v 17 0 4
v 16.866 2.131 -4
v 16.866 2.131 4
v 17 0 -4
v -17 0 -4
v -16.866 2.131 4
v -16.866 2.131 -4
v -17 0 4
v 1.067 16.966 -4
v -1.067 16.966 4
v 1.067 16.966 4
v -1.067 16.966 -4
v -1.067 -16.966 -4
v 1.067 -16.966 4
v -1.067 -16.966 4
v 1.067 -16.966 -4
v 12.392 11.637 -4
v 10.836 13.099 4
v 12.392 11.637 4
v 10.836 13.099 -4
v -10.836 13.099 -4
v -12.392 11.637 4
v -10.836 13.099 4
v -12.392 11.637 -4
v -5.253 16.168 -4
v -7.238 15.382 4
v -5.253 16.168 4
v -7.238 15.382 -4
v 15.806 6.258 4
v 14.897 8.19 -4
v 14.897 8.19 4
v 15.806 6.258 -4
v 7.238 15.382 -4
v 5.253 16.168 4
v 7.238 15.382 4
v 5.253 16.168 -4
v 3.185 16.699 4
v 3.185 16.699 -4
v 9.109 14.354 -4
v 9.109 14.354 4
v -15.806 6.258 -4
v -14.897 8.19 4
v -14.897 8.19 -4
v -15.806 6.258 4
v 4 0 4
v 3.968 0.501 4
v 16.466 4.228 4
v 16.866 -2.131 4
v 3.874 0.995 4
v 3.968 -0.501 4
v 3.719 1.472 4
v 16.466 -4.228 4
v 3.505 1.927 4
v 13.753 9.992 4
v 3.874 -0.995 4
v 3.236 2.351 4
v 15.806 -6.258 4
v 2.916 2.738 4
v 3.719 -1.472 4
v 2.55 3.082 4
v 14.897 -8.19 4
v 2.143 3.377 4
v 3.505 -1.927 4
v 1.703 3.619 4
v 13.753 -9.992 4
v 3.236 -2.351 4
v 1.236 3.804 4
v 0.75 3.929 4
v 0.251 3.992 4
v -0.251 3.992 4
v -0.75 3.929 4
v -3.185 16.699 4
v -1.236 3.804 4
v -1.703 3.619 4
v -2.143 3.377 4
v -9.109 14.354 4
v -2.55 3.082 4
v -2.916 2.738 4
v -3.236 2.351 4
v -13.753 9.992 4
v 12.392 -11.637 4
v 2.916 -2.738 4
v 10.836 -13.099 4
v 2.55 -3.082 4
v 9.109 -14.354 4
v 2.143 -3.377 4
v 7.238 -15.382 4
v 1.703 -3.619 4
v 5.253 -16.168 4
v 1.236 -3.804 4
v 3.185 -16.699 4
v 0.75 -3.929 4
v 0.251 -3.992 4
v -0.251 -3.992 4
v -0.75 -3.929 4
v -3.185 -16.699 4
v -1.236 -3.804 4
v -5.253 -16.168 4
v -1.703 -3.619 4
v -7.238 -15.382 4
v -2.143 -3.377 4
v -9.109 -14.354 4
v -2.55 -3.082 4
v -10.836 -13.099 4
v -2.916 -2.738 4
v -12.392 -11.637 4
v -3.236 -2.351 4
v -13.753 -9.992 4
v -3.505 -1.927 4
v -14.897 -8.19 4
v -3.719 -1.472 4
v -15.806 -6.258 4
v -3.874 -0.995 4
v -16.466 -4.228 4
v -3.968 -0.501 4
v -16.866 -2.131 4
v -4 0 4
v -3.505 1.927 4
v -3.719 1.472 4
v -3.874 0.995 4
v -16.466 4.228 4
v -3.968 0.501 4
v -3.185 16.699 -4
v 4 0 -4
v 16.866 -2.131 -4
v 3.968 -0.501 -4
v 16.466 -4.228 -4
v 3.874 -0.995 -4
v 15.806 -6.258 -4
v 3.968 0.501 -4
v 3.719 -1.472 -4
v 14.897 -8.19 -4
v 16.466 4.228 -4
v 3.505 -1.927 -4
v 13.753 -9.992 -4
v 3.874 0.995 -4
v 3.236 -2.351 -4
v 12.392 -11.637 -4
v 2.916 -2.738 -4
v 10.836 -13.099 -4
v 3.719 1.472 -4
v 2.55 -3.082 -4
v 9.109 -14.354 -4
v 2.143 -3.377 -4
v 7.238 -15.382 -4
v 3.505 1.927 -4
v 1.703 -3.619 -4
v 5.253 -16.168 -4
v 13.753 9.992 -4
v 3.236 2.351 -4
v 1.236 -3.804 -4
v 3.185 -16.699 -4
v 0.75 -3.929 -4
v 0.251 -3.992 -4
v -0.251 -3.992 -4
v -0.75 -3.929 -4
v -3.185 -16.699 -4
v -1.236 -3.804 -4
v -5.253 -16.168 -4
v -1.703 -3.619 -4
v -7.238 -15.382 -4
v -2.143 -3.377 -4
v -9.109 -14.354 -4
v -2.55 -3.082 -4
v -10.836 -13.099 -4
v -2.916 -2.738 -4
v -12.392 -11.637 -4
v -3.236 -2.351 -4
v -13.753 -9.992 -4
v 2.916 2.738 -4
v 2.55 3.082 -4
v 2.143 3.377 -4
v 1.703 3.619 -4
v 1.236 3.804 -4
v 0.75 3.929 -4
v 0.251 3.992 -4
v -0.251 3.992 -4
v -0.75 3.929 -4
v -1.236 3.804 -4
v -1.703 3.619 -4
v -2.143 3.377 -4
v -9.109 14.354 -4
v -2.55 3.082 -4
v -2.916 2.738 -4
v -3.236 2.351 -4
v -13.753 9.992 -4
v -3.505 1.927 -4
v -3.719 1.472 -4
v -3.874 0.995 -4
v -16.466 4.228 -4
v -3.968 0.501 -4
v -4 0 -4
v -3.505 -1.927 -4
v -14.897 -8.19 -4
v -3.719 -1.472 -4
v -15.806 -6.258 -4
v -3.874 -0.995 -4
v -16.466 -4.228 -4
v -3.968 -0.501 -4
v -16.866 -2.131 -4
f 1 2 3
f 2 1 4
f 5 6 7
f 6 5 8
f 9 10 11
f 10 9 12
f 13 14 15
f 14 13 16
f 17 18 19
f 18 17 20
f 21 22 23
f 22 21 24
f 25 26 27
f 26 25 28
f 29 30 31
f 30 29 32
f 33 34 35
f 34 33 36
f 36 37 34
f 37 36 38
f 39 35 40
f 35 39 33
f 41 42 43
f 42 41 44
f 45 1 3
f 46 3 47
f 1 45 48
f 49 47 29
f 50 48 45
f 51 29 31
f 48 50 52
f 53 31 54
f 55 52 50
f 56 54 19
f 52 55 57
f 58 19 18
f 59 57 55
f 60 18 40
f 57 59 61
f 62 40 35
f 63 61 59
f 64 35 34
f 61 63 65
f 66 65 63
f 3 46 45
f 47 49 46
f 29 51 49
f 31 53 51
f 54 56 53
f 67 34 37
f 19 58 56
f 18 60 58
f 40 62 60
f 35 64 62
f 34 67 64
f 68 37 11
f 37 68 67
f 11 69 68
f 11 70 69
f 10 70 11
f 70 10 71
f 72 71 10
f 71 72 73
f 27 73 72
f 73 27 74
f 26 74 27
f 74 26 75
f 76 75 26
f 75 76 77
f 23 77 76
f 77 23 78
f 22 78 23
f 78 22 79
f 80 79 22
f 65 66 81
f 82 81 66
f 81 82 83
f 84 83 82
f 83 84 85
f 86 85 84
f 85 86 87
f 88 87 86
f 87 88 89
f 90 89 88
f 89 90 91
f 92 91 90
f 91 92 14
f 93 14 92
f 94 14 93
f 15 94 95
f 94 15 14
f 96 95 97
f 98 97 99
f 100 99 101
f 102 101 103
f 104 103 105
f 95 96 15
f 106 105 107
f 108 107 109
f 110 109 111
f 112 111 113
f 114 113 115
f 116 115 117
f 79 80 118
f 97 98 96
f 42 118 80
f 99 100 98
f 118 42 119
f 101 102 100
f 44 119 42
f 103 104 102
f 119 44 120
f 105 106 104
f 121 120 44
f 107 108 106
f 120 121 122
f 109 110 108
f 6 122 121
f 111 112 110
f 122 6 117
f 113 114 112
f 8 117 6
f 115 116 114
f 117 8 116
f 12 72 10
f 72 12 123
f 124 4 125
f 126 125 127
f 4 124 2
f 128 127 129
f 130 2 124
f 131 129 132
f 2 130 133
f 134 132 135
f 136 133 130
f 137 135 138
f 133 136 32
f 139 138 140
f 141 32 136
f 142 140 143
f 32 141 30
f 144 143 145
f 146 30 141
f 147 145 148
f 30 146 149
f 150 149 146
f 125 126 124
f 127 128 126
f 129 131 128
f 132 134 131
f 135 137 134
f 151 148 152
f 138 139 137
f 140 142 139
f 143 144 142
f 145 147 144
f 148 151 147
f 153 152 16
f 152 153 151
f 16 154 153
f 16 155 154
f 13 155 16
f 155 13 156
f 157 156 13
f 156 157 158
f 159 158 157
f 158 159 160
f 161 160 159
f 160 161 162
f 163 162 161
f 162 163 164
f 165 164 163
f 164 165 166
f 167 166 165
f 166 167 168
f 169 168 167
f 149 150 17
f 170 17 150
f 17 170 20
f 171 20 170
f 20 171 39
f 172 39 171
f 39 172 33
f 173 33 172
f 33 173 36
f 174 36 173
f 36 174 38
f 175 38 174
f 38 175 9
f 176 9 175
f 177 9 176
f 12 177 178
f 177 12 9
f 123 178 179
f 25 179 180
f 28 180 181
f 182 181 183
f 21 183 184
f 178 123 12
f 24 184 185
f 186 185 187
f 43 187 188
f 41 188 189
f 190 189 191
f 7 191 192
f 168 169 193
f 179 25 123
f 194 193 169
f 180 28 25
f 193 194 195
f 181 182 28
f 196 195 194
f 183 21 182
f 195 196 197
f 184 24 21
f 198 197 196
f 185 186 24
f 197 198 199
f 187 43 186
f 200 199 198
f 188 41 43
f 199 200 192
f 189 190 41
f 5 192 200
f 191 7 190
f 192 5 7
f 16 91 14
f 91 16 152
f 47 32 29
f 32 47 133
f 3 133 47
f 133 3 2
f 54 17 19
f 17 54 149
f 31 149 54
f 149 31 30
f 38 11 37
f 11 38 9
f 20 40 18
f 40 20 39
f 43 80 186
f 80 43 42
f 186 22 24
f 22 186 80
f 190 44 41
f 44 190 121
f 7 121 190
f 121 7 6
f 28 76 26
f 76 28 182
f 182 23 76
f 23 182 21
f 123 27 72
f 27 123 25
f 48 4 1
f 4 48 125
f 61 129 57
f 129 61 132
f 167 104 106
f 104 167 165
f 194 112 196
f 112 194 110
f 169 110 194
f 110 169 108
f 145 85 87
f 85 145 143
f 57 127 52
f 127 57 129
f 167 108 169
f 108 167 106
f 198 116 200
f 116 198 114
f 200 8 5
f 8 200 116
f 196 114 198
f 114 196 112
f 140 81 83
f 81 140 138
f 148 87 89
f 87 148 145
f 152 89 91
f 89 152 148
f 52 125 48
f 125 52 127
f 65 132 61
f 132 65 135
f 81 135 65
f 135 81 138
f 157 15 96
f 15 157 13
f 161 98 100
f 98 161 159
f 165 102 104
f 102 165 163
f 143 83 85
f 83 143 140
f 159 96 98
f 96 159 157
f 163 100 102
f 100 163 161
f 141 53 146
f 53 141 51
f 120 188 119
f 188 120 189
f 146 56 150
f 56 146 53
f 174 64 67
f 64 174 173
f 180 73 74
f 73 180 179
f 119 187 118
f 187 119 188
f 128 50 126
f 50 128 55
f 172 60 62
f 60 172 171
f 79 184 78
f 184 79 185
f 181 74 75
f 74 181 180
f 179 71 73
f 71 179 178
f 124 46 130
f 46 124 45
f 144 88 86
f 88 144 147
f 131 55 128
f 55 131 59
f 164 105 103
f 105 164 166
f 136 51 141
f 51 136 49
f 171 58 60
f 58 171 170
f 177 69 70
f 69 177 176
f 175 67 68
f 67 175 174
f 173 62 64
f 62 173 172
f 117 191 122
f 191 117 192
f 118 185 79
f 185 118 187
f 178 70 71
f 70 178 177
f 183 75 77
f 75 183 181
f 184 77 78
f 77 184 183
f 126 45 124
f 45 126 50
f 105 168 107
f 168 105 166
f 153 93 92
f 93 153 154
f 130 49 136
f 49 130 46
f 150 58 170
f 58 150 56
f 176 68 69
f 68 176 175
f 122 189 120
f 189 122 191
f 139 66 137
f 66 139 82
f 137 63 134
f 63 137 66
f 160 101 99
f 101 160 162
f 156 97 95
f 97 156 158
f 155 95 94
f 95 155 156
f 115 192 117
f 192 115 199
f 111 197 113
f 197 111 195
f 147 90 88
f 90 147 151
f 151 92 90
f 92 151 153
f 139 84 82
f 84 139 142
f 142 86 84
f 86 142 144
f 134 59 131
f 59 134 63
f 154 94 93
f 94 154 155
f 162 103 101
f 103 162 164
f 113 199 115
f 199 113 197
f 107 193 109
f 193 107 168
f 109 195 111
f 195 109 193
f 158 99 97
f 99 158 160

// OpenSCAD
$fn = 50;


difference() {
	union() {
		translate(v = [0, 0, -4.0000000000]) {
			cylinder(h = 8, r = 17.0000000000);
		}
	}
	union() {
		translate(v = [0, 0, -100.0000000000]) {
			cylinder(h = 200, r = 4);
		}
	}
}
